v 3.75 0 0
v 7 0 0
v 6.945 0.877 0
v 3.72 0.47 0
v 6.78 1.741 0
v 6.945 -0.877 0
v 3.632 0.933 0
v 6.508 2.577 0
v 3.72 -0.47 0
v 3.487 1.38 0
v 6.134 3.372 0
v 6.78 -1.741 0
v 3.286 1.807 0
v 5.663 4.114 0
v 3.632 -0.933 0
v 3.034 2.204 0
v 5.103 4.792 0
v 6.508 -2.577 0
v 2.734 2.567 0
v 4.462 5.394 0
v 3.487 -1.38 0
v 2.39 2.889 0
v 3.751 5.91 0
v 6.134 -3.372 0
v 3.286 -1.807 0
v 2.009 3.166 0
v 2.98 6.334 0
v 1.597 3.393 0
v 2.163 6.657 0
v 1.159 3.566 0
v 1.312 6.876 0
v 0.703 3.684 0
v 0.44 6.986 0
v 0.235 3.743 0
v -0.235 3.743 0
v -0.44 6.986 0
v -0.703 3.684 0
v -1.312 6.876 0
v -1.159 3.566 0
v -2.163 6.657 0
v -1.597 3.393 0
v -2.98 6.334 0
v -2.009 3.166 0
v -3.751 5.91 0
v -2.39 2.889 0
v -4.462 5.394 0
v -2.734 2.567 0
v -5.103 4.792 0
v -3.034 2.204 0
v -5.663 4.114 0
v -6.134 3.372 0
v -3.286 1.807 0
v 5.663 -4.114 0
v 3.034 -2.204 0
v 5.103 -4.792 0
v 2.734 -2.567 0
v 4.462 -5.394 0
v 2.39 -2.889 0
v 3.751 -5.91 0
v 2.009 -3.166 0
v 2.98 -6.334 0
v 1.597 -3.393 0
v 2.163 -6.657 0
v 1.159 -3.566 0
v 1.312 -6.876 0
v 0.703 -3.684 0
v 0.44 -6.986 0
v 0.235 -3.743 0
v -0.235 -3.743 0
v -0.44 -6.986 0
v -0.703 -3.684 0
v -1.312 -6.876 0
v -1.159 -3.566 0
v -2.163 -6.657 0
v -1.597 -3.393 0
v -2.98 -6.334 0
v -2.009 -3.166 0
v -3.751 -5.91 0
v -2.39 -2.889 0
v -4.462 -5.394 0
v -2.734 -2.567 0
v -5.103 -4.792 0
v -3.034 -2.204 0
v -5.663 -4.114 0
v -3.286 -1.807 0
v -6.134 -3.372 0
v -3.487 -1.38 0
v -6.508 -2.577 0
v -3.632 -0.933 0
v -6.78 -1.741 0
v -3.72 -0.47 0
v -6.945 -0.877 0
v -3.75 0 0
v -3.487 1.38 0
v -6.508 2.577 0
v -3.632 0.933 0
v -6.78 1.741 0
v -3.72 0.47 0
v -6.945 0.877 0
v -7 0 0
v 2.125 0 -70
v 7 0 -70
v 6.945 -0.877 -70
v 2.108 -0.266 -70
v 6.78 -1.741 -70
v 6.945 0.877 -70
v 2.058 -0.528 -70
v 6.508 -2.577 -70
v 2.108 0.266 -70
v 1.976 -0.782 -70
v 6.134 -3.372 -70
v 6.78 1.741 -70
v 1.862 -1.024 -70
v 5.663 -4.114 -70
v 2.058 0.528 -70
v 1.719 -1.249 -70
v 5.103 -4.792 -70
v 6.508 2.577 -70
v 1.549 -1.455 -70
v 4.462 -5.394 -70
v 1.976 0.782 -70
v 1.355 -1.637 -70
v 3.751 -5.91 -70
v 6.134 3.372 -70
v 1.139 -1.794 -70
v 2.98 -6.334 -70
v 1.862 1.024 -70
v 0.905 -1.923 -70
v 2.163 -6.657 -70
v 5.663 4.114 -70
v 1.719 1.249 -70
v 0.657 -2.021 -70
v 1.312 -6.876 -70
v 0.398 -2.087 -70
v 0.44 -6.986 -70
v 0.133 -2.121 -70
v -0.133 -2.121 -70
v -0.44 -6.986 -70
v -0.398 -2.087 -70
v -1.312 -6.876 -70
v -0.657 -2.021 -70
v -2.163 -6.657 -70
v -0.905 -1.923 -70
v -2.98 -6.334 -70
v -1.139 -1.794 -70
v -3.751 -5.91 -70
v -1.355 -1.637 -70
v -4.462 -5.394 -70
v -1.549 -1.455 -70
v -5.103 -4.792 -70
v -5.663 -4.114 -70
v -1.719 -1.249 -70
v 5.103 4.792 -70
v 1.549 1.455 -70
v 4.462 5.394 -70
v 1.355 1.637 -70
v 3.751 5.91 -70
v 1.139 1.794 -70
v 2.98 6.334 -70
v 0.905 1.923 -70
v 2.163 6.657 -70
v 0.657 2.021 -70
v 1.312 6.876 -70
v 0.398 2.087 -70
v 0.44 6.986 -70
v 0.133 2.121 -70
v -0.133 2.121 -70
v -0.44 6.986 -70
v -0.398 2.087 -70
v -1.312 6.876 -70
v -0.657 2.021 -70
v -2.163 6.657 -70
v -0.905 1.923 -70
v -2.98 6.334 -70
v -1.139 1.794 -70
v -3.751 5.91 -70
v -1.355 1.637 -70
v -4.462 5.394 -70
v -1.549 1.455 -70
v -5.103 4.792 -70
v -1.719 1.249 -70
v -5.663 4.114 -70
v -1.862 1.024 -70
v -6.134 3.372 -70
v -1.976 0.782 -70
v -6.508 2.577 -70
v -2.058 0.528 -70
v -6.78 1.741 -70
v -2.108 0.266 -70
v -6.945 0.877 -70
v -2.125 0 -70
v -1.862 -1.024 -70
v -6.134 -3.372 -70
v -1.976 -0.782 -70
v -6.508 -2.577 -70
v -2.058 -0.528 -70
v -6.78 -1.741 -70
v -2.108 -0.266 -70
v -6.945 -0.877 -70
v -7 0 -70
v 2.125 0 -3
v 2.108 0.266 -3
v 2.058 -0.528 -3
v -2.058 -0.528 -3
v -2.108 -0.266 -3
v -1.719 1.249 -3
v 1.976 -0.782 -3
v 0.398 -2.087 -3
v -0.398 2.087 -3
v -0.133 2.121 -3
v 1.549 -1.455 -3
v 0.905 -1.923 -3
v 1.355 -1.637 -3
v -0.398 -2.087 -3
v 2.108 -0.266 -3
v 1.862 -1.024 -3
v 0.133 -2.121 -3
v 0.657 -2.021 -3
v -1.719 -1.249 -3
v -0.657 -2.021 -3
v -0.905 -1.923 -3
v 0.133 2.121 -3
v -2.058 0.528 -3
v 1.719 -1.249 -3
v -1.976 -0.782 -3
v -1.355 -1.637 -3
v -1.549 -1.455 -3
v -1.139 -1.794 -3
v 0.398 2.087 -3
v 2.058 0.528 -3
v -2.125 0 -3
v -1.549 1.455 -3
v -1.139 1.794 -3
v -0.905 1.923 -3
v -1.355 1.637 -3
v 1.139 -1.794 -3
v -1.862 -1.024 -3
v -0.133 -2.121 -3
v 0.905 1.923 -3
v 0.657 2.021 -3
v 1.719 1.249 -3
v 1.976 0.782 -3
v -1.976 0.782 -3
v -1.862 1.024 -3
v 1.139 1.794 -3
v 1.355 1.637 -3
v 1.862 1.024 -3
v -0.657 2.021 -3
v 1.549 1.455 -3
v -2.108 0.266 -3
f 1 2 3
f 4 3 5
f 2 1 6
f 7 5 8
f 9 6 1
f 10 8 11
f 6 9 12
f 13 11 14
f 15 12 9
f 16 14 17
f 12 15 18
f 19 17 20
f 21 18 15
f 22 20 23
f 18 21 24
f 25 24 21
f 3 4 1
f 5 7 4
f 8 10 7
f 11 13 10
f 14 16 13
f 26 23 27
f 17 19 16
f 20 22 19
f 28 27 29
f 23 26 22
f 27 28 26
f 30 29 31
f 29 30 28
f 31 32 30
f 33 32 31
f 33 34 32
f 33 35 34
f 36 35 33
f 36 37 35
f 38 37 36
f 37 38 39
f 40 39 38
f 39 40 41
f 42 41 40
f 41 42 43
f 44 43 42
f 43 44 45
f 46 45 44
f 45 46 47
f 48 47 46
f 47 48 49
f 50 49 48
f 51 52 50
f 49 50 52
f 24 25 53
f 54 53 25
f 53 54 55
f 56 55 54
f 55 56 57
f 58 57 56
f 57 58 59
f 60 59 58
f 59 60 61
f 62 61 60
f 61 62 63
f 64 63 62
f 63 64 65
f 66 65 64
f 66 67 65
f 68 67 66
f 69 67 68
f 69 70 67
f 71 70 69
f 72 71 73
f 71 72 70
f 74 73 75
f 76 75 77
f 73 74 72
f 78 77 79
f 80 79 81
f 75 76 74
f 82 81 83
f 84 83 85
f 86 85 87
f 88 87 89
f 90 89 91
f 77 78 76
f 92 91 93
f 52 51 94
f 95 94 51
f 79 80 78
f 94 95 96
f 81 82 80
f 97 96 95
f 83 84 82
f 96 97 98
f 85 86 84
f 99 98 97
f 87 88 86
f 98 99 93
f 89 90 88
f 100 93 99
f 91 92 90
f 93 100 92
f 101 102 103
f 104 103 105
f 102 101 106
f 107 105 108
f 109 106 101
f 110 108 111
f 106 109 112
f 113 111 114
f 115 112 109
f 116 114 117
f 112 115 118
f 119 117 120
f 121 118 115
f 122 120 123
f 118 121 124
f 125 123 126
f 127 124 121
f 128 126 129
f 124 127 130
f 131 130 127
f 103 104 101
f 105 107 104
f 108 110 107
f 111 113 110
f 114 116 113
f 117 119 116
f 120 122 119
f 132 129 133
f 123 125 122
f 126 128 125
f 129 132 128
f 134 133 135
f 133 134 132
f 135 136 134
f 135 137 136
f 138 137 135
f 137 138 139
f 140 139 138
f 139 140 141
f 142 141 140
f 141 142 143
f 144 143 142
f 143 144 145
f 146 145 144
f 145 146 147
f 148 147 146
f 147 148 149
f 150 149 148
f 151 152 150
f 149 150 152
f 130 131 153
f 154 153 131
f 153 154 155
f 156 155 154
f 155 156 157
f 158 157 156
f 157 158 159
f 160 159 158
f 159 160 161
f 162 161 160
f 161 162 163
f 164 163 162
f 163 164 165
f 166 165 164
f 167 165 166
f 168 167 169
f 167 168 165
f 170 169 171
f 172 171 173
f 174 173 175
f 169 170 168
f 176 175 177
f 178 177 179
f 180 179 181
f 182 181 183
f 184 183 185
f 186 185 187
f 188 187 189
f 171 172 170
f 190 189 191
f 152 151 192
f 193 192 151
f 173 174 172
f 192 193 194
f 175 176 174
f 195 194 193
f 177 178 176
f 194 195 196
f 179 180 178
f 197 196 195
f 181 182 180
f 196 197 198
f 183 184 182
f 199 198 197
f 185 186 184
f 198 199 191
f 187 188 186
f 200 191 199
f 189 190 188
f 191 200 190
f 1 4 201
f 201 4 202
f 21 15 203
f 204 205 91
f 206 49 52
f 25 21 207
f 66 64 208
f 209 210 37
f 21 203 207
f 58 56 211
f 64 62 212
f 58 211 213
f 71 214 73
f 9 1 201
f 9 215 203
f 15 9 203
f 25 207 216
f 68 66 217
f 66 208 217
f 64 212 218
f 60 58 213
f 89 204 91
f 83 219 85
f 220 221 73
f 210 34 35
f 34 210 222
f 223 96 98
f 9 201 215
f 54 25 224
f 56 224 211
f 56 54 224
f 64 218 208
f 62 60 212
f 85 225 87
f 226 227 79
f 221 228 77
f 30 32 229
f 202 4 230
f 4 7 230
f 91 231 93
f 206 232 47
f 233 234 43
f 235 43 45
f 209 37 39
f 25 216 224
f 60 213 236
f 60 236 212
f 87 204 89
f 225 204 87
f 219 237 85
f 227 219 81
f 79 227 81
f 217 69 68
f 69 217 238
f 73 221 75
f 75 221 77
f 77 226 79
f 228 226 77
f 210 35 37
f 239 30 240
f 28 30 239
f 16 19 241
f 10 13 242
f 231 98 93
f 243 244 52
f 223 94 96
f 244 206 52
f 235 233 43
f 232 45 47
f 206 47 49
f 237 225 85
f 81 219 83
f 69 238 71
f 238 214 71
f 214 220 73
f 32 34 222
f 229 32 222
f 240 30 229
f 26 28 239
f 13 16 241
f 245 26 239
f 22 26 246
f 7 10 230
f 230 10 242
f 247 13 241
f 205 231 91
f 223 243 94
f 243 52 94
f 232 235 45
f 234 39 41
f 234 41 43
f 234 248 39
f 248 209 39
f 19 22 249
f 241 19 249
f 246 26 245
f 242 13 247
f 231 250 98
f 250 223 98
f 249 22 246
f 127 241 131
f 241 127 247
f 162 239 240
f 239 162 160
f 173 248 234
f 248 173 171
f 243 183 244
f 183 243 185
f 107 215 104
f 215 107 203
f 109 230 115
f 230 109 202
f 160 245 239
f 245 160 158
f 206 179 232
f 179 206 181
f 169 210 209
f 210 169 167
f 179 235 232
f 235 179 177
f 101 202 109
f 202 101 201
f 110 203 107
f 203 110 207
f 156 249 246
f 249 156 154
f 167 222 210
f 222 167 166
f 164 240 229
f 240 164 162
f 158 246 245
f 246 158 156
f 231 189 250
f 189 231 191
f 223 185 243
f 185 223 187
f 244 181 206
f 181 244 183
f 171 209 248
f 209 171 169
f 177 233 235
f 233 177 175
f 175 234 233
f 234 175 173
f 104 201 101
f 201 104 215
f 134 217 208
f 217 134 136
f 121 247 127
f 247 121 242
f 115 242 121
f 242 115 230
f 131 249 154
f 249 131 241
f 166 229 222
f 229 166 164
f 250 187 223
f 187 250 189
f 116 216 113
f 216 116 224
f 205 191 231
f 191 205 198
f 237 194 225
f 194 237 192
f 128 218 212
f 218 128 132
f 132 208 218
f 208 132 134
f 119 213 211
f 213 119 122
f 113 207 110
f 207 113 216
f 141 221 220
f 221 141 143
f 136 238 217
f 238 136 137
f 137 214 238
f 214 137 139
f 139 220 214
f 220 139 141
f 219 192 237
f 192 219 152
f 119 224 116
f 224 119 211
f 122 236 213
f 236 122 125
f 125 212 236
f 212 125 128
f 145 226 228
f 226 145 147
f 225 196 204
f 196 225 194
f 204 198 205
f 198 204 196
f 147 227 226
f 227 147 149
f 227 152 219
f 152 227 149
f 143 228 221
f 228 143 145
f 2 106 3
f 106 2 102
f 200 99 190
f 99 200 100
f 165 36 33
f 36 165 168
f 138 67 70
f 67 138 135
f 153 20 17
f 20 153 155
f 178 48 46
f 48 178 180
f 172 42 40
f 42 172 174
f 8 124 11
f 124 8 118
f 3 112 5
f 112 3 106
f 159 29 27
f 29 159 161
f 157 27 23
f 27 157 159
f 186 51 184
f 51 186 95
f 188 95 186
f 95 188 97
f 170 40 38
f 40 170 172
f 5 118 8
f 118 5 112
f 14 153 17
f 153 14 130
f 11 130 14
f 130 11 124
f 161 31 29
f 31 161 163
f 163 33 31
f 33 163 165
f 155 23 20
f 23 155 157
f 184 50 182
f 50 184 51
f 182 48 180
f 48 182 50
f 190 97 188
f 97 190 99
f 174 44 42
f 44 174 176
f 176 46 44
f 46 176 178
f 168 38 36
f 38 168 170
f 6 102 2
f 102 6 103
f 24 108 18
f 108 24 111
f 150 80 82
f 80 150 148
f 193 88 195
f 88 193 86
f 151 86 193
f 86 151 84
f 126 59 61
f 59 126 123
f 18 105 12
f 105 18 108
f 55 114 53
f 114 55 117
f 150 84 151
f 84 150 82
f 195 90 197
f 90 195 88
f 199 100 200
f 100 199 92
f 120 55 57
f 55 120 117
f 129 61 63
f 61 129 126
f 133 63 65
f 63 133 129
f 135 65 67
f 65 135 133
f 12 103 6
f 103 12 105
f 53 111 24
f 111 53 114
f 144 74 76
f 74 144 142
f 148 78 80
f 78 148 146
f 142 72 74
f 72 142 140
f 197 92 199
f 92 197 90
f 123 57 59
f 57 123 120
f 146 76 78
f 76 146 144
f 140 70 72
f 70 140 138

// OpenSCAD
$fn = 50;


difference() {
	union() {
		translate(v = [0, 0, -70.0000000000]) {
			cylinder(h = 70, r = 7.0000000000);
		}
		cylinder(h = 0, r = 13.0000000000);
	}
	union() {
		translate(v = [0, 0, 0]) {
			rotate(a = [0, 0, 0]) {
				difference() {
					union() {
						#translate(v = [0, 0, -70.0000000000]) {
							cylinder(h = 70, r = 2.0000000000);
						}
						#translate(v = [0, 0, -3]) {
							cylinder(h = 3, r = 7.0000000000, r1 = 2.1250000000, r2 = 3.7500000000);
						}
						#translate(v = [0, 0, -70.0000000000]) {
							cylinder(h = 70, r = 2.1250000000);
						}
						#translate(v = [0, 0, -70.0000000000]) {
							cylinder(h = 70, r = 2.0000000000);
						}
					}
					union();
				}
			}
		}
	}
}
